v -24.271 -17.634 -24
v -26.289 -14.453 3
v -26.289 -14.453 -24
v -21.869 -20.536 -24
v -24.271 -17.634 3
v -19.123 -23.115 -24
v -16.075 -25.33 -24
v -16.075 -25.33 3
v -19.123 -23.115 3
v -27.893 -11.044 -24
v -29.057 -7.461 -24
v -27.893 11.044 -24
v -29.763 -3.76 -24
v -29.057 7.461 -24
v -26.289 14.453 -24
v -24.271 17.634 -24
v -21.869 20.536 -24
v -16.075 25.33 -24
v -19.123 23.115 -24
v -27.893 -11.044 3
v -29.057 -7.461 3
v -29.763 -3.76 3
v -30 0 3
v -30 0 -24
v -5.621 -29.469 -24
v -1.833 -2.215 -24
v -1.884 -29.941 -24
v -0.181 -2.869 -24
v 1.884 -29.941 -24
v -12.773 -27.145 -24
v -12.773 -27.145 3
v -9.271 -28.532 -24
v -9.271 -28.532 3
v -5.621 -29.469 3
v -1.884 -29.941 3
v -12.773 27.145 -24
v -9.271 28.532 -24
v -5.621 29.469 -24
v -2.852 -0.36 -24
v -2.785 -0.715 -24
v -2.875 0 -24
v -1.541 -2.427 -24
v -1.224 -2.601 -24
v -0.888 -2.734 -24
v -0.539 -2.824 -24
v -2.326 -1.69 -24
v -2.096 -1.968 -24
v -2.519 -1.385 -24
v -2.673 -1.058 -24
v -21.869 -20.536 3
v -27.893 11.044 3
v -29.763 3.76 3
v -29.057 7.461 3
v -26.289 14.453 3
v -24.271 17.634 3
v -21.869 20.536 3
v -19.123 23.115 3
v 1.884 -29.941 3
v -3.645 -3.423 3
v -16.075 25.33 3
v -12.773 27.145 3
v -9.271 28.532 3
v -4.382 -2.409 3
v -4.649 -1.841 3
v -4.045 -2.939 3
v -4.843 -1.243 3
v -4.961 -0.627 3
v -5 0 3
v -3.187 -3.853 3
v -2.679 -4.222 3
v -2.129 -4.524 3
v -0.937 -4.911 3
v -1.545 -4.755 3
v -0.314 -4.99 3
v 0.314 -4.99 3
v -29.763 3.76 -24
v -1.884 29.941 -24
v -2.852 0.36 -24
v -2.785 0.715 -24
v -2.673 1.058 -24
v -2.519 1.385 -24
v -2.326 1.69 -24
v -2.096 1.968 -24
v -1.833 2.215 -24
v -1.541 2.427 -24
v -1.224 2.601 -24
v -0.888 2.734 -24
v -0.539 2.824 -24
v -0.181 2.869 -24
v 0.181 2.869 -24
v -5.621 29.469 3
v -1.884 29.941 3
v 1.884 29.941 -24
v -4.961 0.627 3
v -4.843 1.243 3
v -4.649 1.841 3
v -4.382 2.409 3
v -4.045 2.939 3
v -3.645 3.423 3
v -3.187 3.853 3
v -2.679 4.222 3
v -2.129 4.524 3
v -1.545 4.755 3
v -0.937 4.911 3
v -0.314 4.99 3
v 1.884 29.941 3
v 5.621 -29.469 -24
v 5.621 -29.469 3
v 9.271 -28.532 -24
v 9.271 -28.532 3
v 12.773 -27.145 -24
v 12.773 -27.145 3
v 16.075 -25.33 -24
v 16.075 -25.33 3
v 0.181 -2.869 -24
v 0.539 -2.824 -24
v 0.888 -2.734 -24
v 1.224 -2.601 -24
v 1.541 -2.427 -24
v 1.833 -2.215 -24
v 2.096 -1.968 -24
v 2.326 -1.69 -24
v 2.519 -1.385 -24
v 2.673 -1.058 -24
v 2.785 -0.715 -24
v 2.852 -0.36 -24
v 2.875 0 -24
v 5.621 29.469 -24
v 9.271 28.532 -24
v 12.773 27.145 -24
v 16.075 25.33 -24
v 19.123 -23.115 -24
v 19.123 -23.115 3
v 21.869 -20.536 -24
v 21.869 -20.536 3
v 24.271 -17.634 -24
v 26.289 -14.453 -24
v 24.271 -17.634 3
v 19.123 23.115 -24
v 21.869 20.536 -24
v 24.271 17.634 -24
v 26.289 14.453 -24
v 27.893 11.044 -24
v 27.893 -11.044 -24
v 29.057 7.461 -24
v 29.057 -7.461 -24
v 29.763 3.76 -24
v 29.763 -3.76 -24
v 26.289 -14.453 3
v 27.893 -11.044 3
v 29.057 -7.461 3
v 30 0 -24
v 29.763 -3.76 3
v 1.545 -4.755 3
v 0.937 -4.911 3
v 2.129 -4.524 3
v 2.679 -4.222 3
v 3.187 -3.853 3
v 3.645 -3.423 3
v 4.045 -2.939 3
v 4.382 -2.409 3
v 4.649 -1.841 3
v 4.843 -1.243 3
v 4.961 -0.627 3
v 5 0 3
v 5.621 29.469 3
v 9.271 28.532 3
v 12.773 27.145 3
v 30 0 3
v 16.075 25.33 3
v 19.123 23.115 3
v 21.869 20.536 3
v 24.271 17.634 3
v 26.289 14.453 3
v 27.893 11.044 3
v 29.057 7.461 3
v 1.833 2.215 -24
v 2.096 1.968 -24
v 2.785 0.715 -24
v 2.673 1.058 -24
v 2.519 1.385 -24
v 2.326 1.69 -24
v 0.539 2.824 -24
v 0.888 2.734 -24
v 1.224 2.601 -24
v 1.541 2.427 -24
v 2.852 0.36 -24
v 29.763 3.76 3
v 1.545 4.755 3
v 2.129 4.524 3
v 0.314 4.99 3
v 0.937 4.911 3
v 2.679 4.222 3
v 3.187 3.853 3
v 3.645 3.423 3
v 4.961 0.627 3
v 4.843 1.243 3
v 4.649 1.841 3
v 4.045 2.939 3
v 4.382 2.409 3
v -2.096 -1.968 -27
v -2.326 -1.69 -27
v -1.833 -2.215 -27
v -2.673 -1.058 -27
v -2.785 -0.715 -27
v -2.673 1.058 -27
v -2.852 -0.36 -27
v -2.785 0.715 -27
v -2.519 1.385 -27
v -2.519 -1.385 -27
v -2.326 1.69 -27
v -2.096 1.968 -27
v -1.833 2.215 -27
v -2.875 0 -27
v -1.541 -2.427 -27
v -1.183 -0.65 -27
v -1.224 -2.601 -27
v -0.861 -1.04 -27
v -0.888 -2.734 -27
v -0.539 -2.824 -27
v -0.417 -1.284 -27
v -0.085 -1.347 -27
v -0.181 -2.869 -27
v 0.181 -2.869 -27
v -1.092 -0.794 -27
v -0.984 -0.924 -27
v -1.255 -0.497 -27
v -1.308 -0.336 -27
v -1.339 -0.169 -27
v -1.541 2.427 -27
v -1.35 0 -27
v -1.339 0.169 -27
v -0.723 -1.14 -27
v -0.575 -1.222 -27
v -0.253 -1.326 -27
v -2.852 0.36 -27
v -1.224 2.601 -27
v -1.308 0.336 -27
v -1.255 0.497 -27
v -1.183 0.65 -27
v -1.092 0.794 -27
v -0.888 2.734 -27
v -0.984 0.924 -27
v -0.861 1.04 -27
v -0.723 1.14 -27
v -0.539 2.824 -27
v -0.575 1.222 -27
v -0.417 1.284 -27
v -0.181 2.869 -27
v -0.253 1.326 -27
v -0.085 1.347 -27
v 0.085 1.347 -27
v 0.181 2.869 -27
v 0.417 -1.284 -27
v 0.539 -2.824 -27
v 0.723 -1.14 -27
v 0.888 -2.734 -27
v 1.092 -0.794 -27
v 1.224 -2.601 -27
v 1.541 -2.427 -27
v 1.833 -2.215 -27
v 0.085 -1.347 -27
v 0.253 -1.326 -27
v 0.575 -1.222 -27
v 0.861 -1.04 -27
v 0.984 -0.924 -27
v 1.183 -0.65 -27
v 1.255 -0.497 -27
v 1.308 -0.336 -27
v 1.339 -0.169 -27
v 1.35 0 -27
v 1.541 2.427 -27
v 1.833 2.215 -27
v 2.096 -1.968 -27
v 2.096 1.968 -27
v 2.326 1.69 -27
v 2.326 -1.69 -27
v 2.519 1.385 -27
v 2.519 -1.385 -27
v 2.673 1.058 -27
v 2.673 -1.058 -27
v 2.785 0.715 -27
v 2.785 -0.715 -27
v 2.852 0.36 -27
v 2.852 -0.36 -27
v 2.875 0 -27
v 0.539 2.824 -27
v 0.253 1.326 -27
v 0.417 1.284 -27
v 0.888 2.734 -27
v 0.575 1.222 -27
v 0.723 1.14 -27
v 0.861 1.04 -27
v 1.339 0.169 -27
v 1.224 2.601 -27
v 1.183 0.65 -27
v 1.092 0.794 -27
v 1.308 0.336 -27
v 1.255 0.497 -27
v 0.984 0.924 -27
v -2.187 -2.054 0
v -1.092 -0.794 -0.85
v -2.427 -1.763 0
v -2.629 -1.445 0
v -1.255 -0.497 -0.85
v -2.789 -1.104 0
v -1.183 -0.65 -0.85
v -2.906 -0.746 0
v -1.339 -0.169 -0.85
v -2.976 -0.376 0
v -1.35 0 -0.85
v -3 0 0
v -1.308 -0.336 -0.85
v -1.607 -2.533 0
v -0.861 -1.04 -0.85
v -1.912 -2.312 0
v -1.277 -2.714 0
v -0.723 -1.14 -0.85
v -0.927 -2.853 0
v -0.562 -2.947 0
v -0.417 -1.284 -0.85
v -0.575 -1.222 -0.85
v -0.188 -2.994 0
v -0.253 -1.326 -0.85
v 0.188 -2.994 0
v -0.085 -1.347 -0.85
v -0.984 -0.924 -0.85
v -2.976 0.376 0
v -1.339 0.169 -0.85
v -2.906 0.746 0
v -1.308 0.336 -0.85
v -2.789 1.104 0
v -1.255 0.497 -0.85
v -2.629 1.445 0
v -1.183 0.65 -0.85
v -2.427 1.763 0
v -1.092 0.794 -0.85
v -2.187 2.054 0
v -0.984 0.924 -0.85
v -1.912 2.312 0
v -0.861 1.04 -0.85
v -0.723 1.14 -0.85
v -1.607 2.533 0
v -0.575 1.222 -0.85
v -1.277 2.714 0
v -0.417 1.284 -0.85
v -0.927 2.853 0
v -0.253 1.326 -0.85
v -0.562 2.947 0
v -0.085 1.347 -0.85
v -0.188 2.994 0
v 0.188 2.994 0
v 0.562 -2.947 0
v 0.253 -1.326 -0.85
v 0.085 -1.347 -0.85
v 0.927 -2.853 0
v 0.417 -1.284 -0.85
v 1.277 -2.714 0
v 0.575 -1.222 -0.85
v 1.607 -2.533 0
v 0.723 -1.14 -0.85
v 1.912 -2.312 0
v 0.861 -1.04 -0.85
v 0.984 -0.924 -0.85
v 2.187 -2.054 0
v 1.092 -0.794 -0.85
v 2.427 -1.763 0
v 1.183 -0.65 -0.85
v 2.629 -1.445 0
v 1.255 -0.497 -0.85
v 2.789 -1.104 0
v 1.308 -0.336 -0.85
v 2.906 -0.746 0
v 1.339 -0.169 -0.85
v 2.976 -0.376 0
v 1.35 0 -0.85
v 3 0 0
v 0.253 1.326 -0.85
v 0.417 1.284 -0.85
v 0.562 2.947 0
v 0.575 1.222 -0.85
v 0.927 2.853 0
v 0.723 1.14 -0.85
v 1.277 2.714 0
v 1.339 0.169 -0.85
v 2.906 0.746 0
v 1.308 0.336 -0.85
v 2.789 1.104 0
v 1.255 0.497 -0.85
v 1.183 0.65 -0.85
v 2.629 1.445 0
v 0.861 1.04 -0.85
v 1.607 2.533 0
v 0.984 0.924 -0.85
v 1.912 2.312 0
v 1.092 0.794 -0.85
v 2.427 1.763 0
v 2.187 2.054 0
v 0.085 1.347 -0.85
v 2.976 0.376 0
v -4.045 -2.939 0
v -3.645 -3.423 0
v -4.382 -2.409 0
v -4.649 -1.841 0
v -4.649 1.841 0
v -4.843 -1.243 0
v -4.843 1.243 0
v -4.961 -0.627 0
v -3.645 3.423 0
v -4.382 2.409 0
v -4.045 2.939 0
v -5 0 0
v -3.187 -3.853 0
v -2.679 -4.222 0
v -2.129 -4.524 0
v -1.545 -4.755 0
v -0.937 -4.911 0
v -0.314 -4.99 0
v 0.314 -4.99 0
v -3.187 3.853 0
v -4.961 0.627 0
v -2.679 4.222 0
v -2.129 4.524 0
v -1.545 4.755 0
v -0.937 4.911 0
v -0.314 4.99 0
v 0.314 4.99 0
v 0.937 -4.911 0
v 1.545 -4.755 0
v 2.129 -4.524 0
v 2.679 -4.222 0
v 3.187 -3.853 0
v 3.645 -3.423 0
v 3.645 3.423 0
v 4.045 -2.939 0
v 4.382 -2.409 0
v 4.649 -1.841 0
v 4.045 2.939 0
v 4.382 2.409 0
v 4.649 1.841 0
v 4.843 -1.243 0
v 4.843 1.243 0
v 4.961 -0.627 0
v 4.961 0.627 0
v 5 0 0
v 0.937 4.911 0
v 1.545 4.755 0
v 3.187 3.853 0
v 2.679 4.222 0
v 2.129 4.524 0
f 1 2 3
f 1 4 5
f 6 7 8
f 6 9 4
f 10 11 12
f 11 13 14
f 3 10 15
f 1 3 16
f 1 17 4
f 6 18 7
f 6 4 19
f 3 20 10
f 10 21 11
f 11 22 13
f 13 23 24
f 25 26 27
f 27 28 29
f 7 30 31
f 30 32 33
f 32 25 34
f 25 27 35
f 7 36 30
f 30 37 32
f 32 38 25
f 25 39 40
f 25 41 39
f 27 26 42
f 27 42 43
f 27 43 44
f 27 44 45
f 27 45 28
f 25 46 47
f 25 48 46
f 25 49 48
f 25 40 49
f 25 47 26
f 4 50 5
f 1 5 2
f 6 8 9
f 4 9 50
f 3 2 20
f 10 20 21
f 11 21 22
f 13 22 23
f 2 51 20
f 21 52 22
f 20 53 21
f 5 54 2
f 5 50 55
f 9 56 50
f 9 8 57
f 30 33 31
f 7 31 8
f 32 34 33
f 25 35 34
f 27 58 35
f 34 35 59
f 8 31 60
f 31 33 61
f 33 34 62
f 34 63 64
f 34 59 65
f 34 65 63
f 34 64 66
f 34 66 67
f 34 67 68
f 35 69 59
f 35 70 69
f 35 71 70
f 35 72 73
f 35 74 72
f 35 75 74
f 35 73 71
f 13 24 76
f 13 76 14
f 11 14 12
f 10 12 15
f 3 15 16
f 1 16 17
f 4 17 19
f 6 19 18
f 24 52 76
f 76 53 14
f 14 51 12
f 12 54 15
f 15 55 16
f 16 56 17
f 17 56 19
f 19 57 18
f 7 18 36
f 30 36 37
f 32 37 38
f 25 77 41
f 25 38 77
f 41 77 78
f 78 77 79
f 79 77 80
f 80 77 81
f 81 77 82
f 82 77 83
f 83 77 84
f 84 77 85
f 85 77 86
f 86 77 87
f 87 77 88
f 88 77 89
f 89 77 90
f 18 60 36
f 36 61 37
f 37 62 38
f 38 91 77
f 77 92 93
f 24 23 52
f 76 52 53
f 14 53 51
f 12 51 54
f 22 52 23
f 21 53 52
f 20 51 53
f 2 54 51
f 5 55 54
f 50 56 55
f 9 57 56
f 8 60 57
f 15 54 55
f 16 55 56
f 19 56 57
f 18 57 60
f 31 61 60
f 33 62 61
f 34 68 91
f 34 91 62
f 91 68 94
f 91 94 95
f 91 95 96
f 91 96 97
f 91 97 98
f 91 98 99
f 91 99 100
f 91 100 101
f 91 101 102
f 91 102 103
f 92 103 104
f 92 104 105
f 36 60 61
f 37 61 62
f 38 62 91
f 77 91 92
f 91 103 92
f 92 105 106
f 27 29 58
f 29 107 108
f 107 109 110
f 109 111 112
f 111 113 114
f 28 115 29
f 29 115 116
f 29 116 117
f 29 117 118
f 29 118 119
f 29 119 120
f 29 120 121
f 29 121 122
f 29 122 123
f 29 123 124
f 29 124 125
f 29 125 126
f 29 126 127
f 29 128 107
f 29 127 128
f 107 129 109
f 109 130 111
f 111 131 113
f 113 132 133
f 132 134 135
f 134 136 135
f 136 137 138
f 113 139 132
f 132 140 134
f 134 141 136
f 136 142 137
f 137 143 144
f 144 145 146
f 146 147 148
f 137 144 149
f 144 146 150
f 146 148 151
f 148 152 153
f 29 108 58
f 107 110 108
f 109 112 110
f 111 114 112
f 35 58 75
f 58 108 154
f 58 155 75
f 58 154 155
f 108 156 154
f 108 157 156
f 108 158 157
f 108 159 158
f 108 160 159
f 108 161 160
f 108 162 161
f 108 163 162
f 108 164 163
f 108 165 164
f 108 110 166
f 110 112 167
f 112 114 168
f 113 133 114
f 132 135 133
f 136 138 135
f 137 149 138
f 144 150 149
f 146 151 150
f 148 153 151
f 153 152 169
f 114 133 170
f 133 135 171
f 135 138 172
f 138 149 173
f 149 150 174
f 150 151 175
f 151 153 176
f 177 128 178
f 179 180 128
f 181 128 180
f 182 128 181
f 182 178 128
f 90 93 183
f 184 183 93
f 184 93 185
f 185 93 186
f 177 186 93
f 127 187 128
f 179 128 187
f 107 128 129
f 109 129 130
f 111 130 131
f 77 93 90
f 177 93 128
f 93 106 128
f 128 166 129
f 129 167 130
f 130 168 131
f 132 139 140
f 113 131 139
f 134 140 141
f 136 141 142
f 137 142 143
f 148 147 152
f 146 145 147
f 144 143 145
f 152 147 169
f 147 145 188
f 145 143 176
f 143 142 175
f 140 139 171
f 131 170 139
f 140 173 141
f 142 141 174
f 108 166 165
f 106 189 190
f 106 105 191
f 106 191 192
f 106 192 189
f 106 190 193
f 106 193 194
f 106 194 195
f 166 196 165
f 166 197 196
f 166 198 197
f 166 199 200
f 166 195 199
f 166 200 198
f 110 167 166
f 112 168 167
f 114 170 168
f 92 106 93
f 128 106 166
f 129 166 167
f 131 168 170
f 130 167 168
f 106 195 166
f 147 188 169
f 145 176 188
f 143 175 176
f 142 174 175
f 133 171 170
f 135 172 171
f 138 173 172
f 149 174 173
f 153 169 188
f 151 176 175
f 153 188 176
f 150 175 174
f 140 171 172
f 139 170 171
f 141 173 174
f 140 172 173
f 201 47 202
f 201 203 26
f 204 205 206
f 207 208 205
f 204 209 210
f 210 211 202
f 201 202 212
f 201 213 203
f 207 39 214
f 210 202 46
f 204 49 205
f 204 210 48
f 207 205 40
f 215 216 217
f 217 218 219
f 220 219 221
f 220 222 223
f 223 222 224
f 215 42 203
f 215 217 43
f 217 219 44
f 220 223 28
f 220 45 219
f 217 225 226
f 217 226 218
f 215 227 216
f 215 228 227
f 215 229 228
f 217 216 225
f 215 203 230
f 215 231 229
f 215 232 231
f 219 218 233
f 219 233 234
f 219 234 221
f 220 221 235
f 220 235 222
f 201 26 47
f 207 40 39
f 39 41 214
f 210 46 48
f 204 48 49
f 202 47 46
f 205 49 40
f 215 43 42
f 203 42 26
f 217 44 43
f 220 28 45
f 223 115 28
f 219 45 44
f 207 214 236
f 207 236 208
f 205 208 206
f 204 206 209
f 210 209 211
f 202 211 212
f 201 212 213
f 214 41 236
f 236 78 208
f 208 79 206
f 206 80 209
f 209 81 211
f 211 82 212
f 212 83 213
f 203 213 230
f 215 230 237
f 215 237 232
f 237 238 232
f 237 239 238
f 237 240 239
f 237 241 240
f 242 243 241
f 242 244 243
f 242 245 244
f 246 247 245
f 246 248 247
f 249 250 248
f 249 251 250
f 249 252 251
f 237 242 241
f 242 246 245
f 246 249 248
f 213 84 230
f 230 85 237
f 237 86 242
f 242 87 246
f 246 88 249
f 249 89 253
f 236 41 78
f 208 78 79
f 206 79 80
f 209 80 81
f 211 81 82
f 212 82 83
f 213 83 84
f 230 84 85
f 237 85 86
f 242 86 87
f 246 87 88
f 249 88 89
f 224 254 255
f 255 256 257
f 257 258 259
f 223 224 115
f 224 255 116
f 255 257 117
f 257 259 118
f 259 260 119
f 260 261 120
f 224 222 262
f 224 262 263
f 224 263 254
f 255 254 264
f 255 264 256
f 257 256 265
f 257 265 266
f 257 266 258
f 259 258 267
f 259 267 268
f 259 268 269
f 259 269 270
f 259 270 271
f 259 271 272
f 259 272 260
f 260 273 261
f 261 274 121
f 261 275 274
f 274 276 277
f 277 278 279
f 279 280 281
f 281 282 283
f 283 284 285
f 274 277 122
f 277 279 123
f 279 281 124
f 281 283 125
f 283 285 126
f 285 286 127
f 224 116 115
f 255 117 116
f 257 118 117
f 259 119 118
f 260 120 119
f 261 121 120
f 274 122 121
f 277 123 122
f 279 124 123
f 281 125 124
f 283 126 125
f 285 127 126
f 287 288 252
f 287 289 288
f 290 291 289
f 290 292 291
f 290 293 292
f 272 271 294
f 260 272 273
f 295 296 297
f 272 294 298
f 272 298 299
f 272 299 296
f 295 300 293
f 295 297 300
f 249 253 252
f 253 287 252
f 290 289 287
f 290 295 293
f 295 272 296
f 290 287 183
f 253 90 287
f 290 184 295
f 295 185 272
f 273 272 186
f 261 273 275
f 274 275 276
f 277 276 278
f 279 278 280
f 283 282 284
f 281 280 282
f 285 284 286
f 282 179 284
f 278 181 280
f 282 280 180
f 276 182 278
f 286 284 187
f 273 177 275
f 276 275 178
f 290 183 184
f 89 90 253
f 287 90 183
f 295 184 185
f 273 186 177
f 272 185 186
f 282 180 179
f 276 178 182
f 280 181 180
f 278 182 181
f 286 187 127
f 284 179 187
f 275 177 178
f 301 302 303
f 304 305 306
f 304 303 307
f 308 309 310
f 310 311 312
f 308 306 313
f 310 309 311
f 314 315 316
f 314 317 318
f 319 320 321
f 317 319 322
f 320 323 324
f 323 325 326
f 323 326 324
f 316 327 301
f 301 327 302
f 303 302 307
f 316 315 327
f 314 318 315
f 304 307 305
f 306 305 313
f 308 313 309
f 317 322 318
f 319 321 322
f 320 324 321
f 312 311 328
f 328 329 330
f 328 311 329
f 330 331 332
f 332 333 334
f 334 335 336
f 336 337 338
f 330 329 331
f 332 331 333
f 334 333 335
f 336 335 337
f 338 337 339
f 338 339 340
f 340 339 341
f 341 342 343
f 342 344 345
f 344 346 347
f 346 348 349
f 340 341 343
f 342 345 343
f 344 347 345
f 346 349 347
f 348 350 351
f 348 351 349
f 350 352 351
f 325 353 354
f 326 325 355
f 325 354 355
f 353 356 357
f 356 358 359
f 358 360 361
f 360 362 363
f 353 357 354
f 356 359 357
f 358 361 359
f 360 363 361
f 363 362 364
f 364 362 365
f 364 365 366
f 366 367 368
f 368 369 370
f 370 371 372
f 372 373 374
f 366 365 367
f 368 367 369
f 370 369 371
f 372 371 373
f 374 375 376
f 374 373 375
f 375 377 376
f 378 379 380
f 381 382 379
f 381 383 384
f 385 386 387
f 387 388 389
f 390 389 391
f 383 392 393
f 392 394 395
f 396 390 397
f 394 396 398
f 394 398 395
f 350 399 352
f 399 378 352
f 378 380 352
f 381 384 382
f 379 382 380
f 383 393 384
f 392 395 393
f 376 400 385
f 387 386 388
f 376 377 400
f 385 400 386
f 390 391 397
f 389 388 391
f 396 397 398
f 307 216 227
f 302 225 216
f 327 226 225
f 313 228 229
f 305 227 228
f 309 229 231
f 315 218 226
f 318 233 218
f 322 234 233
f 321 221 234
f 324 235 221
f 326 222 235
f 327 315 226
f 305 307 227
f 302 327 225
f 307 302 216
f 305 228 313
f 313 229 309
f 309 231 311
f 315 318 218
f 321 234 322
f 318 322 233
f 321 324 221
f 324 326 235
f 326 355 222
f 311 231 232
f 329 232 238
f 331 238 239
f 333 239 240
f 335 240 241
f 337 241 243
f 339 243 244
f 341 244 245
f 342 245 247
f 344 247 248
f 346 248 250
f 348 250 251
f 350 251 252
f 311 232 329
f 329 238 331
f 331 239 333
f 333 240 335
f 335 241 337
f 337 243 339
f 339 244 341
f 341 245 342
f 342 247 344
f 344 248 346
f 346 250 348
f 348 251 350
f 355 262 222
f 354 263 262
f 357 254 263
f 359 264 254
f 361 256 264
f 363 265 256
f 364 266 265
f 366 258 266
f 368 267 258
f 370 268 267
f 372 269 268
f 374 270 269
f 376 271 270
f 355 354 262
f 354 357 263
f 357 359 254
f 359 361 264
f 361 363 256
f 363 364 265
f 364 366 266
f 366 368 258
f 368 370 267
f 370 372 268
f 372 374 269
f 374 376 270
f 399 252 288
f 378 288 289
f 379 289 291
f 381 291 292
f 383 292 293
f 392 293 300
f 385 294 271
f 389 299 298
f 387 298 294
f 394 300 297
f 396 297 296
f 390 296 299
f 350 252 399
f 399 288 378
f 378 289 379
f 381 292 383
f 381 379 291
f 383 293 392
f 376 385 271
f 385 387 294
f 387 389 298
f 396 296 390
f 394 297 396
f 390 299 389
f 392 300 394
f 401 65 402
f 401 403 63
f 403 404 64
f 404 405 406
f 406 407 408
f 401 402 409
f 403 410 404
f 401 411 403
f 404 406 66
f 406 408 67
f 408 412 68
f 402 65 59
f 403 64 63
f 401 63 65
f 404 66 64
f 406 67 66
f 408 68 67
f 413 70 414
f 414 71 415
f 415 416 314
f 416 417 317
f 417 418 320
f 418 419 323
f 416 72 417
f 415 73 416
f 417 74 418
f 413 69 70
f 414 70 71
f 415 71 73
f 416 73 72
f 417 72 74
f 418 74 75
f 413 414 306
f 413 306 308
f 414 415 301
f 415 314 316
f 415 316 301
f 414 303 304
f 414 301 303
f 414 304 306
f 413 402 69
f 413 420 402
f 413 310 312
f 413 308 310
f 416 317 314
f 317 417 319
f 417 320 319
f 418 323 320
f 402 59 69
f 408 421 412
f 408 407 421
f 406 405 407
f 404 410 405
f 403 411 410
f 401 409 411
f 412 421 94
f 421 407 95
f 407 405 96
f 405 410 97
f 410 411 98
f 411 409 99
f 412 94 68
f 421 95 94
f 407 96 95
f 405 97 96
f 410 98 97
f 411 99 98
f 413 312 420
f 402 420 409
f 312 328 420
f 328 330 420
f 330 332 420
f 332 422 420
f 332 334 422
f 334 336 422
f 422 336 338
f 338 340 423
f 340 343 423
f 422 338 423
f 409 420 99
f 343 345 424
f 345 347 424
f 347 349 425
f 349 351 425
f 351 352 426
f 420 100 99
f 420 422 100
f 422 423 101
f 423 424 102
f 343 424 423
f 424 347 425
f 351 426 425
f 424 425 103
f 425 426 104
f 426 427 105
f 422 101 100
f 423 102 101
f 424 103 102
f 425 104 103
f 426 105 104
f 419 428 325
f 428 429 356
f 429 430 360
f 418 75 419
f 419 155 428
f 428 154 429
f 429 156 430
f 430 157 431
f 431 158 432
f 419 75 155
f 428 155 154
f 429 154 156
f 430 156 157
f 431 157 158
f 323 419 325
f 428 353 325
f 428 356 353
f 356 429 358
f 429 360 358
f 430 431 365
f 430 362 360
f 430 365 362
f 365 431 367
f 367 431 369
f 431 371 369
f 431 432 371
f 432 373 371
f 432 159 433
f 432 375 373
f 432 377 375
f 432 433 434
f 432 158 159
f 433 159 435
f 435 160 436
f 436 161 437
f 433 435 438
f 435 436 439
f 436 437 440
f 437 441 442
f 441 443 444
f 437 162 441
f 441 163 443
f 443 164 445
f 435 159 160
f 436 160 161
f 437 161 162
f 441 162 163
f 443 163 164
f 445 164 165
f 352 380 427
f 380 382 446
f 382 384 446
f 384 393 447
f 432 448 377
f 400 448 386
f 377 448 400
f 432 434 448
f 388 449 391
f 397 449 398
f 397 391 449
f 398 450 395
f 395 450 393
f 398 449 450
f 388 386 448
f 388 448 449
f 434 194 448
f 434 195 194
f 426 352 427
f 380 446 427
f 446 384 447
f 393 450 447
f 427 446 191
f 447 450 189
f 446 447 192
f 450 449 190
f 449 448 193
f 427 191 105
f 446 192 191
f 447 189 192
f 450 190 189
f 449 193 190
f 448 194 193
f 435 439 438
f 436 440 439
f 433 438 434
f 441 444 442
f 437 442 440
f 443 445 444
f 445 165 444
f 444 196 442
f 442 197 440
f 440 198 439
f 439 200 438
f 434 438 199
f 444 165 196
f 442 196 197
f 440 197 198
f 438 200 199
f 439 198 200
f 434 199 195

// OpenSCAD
$fn = 50;


difference() {
	union() {
		translate(v = [0, 0, -24.0000000000]) {
			cylinder(h = 27, r = 30.0000000000);
		}
		#translate(v = [0, 0, -27.0000000000]) {
			cylinder(h = 27, r = 2.8750000000);
		}
	}
	union() {
		translate(v = [0, 0, 0]) {
			rotate(a = [0, 0, 0]) {
				difference() {
					union() {
						translate(v = [0, 0, -27.0000000000]) {
							cylinder(h = 27, r = 1.0000000000);
						}
						translate(v = [0, 0, -0.8500000000]) {
							cylinder(h = 0.8500000000, r1 = 1.3500000000, r2 = 3.0000000000);
						}
						translate(v = [0, 0, -27.0000000000]) {
							cylinder(h = 27, r = 1.3500000000);
						}
						translate(v = [0, 0, -27.0000000000]) {
							cylinder(h = 27, r = 1.0000000000);
						}
					}
					union();
				}
			}
		}
		#cylinder(h = 3, r = 5.0000000000);
	}
}
